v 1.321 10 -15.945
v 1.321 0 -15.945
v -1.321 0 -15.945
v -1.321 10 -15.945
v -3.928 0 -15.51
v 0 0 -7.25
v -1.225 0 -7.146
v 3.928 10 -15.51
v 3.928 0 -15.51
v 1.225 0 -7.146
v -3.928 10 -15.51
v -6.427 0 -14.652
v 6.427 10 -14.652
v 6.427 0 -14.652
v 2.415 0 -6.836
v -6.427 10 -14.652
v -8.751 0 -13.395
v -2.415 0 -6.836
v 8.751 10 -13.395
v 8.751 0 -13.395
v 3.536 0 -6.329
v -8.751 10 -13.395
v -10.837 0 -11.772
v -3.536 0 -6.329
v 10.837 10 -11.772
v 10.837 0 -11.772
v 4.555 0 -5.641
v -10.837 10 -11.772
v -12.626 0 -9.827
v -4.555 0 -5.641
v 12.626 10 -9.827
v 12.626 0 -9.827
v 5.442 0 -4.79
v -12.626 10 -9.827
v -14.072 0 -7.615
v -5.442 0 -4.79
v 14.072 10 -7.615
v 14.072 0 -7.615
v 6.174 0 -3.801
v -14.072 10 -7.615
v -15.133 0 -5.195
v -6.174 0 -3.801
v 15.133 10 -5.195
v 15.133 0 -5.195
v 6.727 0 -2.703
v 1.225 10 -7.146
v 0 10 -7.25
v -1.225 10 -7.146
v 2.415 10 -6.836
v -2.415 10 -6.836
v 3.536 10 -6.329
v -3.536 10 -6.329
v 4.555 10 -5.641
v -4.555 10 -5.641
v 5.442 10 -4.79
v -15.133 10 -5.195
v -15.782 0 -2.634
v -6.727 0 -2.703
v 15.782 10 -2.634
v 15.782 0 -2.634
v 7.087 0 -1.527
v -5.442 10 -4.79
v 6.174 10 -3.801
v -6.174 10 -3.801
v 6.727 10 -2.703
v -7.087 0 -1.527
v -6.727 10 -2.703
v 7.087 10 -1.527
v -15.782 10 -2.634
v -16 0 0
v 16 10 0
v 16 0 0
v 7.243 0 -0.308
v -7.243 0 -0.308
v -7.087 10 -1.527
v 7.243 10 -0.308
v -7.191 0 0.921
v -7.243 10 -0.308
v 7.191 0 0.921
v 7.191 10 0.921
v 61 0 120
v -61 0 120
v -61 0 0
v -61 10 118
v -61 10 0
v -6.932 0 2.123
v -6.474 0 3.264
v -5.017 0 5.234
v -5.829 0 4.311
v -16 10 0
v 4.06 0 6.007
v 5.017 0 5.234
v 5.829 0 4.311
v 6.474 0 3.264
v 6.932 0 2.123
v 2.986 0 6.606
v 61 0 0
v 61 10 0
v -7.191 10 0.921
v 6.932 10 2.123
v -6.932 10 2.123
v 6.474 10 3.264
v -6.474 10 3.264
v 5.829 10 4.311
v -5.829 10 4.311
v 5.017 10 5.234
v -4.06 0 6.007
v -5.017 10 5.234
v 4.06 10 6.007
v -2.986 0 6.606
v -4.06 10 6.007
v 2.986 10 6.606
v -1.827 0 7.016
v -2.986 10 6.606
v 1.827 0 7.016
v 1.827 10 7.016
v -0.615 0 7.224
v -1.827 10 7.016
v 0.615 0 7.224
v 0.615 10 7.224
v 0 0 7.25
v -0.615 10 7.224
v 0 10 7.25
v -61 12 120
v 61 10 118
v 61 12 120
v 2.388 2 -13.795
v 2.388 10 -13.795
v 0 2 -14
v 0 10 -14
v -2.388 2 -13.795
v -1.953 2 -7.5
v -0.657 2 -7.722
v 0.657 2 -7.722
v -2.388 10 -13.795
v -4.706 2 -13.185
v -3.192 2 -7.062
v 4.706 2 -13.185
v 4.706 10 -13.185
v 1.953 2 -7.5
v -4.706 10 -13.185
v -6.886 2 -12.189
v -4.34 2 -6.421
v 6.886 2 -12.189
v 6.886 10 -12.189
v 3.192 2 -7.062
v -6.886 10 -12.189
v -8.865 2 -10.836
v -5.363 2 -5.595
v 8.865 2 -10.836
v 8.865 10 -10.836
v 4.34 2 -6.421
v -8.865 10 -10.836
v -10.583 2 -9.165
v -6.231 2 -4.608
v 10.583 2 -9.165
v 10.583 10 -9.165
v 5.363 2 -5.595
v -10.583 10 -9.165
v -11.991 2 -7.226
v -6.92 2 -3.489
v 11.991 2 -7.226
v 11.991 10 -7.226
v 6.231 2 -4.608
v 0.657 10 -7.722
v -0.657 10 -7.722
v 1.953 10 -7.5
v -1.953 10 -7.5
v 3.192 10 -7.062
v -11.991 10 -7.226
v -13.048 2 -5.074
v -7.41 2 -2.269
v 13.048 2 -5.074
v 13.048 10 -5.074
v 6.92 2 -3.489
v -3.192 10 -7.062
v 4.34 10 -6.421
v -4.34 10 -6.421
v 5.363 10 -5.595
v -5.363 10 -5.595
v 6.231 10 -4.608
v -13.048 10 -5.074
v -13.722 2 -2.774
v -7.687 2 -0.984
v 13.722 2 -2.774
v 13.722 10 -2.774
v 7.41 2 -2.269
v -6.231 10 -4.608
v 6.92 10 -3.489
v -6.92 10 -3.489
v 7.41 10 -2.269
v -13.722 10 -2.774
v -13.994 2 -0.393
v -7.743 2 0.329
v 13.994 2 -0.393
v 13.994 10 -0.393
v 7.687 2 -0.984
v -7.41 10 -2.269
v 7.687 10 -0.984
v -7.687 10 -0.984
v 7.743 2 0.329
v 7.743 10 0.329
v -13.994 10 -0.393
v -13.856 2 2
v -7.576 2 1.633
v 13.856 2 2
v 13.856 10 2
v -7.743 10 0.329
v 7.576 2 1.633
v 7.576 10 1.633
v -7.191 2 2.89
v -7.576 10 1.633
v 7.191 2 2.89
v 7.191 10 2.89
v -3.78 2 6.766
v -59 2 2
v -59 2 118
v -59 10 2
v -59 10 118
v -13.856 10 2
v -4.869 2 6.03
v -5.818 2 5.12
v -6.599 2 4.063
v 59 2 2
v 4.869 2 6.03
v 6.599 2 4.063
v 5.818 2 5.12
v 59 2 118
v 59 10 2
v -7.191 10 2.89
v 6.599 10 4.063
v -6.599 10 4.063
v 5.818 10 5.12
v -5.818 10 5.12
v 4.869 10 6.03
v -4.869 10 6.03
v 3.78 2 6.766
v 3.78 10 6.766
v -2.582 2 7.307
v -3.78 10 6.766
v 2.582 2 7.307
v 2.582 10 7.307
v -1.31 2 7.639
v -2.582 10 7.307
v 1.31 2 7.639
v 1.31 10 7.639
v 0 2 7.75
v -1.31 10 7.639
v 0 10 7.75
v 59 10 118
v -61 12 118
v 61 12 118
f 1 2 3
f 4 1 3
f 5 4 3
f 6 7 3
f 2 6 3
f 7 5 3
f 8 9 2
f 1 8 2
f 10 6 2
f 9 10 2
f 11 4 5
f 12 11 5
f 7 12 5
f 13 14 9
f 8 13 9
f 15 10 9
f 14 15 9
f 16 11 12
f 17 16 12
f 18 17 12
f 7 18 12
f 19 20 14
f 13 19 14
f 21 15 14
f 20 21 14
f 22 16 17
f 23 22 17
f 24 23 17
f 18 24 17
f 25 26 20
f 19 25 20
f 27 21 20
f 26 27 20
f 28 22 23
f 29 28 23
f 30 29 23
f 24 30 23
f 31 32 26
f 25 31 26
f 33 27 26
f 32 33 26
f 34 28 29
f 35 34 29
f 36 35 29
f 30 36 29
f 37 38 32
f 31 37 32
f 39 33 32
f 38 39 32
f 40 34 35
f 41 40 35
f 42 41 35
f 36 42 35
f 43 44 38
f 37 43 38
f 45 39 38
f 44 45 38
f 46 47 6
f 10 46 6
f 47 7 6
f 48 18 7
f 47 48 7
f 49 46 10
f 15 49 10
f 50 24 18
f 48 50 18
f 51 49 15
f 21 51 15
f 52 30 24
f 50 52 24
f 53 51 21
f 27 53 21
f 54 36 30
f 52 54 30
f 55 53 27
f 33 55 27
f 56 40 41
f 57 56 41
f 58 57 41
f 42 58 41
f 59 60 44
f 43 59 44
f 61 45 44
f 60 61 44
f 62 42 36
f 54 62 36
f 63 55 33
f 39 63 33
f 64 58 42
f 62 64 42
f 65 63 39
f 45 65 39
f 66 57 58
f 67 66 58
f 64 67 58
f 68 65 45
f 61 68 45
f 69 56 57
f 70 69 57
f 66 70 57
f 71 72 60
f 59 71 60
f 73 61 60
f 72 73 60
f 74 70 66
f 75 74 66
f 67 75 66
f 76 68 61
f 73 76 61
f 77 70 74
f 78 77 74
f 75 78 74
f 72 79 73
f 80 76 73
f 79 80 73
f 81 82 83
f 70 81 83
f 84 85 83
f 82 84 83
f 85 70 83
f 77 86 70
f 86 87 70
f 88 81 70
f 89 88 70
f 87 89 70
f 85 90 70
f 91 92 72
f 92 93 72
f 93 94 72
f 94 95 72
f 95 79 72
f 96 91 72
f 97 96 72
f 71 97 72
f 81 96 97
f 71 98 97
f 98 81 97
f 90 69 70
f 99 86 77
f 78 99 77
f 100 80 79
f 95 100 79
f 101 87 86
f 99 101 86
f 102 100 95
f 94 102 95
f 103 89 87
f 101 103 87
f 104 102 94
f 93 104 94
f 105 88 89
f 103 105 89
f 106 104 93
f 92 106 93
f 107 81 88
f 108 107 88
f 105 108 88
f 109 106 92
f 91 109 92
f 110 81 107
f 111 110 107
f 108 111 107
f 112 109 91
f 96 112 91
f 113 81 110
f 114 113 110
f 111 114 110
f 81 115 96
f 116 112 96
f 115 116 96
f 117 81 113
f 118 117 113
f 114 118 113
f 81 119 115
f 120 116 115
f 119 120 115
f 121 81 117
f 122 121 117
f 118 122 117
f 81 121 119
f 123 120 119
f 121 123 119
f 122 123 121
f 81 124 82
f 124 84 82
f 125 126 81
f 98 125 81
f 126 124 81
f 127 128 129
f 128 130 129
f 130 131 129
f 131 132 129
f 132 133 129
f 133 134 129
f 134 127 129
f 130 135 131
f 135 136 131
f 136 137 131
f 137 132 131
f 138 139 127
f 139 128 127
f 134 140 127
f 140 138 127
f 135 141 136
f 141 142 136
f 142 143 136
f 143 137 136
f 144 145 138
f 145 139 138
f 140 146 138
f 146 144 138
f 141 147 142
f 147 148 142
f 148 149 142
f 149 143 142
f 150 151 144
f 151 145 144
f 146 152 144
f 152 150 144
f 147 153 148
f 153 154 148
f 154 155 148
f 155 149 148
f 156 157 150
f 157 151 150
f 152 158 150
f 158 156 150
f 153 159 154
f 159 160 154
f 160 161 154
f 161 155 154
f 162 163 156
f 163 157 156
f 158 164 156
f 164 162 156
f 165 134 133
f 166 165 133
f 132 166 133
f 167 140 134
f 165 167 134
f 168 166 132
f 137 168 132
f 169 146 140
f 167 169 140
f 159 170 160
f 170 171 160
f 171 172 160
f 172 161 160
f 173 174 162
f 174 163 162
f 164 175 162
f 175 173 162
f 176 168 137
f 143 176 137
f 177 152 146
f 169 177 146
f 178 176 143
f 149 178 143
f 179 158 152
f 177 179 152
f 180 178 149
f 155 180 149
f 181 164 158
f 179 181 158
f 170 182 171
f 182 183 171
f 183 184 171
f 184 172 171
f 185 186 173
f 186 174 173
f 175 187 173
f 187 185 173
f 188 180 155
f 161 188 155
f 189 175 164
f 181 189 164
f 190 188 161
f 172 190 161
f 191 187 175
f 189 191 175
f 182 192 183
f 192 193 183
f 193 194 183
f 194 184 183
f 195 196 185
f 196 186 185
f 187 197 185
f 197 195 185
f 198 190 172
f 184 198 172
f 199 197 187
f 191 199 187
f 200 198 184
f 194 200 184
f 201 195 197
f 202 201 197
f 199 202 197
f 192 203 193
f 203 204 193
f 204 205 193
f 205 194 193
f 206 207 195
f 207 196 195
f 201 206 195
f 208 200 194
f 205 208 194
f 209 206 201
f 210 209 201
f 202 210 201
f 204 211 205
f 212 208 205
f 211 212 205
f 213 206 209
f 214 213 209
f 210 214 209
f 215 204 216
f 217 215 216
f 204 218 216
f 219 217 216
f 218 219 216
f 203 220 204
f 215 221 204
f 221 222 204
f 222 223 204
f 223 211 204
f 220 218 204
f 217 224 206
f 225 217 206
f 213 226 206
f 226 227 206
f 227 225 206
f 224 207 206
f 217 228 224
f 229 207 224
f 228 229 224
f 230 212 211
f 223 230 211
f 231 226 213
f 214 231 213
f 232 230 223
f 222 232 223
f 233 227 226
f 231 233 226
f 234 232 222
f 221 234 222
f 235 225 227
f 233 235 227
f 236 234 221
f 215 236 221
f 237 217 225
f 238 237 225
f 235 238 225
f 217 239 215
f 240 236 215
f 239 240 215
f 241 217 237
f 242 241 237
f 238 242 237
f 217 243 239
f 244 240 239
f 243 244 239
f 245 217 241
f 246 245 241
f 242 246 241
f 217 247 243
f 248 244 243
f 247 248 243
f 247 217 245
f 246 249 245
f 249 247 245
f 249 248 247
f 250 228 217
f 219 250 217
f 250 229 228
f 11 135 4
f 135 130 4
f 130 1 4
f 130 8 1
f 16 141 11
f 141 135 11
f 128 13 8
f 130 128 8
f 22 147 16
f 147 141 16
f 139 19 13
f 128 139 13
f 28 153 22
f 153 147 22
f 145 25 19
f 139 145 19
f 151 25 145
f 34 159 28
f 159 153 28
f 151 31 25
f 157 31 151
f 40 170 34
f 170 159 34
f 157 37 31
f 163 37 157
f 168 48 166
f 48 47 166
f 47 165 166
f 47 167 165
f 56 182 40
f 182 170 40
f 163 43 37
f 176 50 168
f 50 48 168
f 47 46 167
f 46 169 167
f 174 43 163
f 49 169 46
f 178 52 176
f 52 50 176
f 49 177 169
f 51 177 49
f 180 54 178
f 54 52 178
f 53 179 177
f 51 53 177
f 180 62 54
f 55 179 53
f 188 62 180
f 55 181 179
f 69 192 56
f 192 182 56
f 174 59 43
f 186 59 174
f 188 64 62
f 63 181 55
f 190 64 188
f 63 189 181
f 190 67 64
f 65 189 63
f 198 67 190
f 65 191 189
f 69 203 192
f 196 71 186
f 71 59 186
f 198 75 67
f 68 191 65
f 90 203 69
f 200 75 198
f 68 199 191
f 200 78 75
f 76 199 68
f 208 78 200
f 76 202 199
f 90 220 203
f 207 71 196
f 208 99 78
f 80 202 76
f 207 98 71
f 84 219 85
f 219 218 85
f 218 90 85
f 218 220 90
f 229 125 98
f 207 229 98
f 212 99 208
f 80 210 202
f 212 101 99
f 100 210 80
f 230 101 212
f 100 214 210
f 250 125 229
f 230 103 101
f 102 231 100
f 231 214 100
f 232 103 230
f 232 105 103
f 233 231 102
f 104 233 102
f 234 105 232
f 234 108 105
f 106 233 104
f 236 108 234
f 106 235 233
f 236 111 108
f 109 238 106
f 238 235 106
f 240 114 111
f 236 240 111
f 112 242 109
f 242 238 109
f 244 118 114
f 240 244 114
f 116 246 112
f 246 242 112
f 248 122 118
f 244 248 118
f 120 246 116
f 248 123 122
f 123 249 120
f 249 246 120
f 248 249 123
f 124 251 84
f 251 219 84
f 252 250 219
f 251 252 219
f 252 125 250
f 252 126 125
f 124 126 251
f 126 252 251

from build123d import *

# Parameters (mm, degrees)
SKETCH7_R                = 16
BOSS_EXTRUDE3_DEPTH      = 10
SKETCH8_R                = 7.25
CUT_EXTRUDE8_DEPTH       = 10
SKETCH9_R                = 14
SKETCH9_R_2              = 7.75
CUT_EXTRUDE9_DEPTH       = 8
BOSS_EXTRUDE5_DEPTH      = 8
BOSS_EXTRUDE5_DEPTH_BACK = 2
CUT_EXTRUDE11_DEPTH      = 8
BOSS_EXTRUDE6_DEPTH      = 10


with BuildPart() as part:
    # Sketch7 → Boss-Extrude3 (new body)
    with BuildSketch(Plane(origin=(0, 0, 0), x_dir=(1, 0, 0), z_dir=(0, 1, 0))):
        with Locations(Location((0, 0, 0), (0, 0, 270))):
            Circle(SKETCH7_R)
    extrude(amount=BOSS_EXTRUDE3_DEPTH)

    # Sketch8 → Cut-Extrude8 (cut)
    with BuildSketch(Plane(origin=(0, 0, 0), x_dir=(1, 0, 0), z_dir=(0, 1, 0))):
        with Locations(Location((0, 0, 0), (0, 0, 270))):
            Circle(SKETCH8_R)
    extrude(amount=CUT_EXTRUDE8_DEPTH, mode=Mode.SUBTRACT)

    # Sketch9 → Cut-Extrude9 (cut)
    with BuildSketch(Plane(origin=(0, 10, 0), x_dir=(1, 0, 0), z_dir=(0, 1, 0))):
        with Locations(Location((0, 0, 0), (0, 0, 270))):
            Circle(SKETCH9_R)
        with Locations(Location((0, 0, 0), (0, 0, 270))):
            Circle(SKETCH9_R_2, mode=Mode.SUBTRACT)
    extrude(amount=-CUT_EXTRUDE9_DEPTH, mode=Mode.SUBTRACT)

    # Sketch10 → Boss-Extrude5 (add, two sides: drawn at the far end of the back side and taken through both)
    with BuildSketch(Plane(origin=(0, 2, 0), x_dir=(1, 0, 0), z_dir=(0, 1, 0)).offset(-BOSS_EXTRUDE5_DEPTH_BACK)):
        with BuildLine():
            Line((16, 0), (61, 0))
            Line((61, 0), (61, -120))
            Line((61, -120), (-61, -120))
            Line((-61, -120), (-61, 0))
            Line((-61, 0), (-16, 0))
            ThreePointArc((-16, 0), (0, -16), (16, 0))
        make_face()
    extrude(amount=BOSS_EXTRUDE5_DEPTH + BOSS_EXTRUDE5_DEPTH_BACK)

    # Sketch11 → Cut-Extrude11 (cut)
    with BuildSketch(Plane(origin=(0, 10, 0), x_dir=(1, 0, 0), z_dir=(0, 1, 0))):
        with BuildLine():
            Line((-59, -2), (-59, -118))
            Line((-59, -118), (59, -118))
            Line((59, -118), (59, -2))
            Line((59, -2), (13.856406461, -2))
            ThreePointArc((13.856406461, -2), (0, -14), (-13.856406461, -2))
            Line((-13.856406461, -2), (-59, -2))
        make_face()
    extrude(amount=-CUT_EXTRUDE11_DEPTH, mode=Mode.SUBTRACT)

    # Sketch12 → Boss-Extrude6 (add)
    with BuildSketch(Plane(origin=(0, 2, 0), x_dir=(1, 0, 0), z_dir=(0, 1, 0))):
        Polygon((-59, -118), (-61, -118), (-61, -120), (61, -120), (61, -118), align=None)
    extrude(amount=BOSS_EXTRUDE6_DEPTH)


solid = part.part
